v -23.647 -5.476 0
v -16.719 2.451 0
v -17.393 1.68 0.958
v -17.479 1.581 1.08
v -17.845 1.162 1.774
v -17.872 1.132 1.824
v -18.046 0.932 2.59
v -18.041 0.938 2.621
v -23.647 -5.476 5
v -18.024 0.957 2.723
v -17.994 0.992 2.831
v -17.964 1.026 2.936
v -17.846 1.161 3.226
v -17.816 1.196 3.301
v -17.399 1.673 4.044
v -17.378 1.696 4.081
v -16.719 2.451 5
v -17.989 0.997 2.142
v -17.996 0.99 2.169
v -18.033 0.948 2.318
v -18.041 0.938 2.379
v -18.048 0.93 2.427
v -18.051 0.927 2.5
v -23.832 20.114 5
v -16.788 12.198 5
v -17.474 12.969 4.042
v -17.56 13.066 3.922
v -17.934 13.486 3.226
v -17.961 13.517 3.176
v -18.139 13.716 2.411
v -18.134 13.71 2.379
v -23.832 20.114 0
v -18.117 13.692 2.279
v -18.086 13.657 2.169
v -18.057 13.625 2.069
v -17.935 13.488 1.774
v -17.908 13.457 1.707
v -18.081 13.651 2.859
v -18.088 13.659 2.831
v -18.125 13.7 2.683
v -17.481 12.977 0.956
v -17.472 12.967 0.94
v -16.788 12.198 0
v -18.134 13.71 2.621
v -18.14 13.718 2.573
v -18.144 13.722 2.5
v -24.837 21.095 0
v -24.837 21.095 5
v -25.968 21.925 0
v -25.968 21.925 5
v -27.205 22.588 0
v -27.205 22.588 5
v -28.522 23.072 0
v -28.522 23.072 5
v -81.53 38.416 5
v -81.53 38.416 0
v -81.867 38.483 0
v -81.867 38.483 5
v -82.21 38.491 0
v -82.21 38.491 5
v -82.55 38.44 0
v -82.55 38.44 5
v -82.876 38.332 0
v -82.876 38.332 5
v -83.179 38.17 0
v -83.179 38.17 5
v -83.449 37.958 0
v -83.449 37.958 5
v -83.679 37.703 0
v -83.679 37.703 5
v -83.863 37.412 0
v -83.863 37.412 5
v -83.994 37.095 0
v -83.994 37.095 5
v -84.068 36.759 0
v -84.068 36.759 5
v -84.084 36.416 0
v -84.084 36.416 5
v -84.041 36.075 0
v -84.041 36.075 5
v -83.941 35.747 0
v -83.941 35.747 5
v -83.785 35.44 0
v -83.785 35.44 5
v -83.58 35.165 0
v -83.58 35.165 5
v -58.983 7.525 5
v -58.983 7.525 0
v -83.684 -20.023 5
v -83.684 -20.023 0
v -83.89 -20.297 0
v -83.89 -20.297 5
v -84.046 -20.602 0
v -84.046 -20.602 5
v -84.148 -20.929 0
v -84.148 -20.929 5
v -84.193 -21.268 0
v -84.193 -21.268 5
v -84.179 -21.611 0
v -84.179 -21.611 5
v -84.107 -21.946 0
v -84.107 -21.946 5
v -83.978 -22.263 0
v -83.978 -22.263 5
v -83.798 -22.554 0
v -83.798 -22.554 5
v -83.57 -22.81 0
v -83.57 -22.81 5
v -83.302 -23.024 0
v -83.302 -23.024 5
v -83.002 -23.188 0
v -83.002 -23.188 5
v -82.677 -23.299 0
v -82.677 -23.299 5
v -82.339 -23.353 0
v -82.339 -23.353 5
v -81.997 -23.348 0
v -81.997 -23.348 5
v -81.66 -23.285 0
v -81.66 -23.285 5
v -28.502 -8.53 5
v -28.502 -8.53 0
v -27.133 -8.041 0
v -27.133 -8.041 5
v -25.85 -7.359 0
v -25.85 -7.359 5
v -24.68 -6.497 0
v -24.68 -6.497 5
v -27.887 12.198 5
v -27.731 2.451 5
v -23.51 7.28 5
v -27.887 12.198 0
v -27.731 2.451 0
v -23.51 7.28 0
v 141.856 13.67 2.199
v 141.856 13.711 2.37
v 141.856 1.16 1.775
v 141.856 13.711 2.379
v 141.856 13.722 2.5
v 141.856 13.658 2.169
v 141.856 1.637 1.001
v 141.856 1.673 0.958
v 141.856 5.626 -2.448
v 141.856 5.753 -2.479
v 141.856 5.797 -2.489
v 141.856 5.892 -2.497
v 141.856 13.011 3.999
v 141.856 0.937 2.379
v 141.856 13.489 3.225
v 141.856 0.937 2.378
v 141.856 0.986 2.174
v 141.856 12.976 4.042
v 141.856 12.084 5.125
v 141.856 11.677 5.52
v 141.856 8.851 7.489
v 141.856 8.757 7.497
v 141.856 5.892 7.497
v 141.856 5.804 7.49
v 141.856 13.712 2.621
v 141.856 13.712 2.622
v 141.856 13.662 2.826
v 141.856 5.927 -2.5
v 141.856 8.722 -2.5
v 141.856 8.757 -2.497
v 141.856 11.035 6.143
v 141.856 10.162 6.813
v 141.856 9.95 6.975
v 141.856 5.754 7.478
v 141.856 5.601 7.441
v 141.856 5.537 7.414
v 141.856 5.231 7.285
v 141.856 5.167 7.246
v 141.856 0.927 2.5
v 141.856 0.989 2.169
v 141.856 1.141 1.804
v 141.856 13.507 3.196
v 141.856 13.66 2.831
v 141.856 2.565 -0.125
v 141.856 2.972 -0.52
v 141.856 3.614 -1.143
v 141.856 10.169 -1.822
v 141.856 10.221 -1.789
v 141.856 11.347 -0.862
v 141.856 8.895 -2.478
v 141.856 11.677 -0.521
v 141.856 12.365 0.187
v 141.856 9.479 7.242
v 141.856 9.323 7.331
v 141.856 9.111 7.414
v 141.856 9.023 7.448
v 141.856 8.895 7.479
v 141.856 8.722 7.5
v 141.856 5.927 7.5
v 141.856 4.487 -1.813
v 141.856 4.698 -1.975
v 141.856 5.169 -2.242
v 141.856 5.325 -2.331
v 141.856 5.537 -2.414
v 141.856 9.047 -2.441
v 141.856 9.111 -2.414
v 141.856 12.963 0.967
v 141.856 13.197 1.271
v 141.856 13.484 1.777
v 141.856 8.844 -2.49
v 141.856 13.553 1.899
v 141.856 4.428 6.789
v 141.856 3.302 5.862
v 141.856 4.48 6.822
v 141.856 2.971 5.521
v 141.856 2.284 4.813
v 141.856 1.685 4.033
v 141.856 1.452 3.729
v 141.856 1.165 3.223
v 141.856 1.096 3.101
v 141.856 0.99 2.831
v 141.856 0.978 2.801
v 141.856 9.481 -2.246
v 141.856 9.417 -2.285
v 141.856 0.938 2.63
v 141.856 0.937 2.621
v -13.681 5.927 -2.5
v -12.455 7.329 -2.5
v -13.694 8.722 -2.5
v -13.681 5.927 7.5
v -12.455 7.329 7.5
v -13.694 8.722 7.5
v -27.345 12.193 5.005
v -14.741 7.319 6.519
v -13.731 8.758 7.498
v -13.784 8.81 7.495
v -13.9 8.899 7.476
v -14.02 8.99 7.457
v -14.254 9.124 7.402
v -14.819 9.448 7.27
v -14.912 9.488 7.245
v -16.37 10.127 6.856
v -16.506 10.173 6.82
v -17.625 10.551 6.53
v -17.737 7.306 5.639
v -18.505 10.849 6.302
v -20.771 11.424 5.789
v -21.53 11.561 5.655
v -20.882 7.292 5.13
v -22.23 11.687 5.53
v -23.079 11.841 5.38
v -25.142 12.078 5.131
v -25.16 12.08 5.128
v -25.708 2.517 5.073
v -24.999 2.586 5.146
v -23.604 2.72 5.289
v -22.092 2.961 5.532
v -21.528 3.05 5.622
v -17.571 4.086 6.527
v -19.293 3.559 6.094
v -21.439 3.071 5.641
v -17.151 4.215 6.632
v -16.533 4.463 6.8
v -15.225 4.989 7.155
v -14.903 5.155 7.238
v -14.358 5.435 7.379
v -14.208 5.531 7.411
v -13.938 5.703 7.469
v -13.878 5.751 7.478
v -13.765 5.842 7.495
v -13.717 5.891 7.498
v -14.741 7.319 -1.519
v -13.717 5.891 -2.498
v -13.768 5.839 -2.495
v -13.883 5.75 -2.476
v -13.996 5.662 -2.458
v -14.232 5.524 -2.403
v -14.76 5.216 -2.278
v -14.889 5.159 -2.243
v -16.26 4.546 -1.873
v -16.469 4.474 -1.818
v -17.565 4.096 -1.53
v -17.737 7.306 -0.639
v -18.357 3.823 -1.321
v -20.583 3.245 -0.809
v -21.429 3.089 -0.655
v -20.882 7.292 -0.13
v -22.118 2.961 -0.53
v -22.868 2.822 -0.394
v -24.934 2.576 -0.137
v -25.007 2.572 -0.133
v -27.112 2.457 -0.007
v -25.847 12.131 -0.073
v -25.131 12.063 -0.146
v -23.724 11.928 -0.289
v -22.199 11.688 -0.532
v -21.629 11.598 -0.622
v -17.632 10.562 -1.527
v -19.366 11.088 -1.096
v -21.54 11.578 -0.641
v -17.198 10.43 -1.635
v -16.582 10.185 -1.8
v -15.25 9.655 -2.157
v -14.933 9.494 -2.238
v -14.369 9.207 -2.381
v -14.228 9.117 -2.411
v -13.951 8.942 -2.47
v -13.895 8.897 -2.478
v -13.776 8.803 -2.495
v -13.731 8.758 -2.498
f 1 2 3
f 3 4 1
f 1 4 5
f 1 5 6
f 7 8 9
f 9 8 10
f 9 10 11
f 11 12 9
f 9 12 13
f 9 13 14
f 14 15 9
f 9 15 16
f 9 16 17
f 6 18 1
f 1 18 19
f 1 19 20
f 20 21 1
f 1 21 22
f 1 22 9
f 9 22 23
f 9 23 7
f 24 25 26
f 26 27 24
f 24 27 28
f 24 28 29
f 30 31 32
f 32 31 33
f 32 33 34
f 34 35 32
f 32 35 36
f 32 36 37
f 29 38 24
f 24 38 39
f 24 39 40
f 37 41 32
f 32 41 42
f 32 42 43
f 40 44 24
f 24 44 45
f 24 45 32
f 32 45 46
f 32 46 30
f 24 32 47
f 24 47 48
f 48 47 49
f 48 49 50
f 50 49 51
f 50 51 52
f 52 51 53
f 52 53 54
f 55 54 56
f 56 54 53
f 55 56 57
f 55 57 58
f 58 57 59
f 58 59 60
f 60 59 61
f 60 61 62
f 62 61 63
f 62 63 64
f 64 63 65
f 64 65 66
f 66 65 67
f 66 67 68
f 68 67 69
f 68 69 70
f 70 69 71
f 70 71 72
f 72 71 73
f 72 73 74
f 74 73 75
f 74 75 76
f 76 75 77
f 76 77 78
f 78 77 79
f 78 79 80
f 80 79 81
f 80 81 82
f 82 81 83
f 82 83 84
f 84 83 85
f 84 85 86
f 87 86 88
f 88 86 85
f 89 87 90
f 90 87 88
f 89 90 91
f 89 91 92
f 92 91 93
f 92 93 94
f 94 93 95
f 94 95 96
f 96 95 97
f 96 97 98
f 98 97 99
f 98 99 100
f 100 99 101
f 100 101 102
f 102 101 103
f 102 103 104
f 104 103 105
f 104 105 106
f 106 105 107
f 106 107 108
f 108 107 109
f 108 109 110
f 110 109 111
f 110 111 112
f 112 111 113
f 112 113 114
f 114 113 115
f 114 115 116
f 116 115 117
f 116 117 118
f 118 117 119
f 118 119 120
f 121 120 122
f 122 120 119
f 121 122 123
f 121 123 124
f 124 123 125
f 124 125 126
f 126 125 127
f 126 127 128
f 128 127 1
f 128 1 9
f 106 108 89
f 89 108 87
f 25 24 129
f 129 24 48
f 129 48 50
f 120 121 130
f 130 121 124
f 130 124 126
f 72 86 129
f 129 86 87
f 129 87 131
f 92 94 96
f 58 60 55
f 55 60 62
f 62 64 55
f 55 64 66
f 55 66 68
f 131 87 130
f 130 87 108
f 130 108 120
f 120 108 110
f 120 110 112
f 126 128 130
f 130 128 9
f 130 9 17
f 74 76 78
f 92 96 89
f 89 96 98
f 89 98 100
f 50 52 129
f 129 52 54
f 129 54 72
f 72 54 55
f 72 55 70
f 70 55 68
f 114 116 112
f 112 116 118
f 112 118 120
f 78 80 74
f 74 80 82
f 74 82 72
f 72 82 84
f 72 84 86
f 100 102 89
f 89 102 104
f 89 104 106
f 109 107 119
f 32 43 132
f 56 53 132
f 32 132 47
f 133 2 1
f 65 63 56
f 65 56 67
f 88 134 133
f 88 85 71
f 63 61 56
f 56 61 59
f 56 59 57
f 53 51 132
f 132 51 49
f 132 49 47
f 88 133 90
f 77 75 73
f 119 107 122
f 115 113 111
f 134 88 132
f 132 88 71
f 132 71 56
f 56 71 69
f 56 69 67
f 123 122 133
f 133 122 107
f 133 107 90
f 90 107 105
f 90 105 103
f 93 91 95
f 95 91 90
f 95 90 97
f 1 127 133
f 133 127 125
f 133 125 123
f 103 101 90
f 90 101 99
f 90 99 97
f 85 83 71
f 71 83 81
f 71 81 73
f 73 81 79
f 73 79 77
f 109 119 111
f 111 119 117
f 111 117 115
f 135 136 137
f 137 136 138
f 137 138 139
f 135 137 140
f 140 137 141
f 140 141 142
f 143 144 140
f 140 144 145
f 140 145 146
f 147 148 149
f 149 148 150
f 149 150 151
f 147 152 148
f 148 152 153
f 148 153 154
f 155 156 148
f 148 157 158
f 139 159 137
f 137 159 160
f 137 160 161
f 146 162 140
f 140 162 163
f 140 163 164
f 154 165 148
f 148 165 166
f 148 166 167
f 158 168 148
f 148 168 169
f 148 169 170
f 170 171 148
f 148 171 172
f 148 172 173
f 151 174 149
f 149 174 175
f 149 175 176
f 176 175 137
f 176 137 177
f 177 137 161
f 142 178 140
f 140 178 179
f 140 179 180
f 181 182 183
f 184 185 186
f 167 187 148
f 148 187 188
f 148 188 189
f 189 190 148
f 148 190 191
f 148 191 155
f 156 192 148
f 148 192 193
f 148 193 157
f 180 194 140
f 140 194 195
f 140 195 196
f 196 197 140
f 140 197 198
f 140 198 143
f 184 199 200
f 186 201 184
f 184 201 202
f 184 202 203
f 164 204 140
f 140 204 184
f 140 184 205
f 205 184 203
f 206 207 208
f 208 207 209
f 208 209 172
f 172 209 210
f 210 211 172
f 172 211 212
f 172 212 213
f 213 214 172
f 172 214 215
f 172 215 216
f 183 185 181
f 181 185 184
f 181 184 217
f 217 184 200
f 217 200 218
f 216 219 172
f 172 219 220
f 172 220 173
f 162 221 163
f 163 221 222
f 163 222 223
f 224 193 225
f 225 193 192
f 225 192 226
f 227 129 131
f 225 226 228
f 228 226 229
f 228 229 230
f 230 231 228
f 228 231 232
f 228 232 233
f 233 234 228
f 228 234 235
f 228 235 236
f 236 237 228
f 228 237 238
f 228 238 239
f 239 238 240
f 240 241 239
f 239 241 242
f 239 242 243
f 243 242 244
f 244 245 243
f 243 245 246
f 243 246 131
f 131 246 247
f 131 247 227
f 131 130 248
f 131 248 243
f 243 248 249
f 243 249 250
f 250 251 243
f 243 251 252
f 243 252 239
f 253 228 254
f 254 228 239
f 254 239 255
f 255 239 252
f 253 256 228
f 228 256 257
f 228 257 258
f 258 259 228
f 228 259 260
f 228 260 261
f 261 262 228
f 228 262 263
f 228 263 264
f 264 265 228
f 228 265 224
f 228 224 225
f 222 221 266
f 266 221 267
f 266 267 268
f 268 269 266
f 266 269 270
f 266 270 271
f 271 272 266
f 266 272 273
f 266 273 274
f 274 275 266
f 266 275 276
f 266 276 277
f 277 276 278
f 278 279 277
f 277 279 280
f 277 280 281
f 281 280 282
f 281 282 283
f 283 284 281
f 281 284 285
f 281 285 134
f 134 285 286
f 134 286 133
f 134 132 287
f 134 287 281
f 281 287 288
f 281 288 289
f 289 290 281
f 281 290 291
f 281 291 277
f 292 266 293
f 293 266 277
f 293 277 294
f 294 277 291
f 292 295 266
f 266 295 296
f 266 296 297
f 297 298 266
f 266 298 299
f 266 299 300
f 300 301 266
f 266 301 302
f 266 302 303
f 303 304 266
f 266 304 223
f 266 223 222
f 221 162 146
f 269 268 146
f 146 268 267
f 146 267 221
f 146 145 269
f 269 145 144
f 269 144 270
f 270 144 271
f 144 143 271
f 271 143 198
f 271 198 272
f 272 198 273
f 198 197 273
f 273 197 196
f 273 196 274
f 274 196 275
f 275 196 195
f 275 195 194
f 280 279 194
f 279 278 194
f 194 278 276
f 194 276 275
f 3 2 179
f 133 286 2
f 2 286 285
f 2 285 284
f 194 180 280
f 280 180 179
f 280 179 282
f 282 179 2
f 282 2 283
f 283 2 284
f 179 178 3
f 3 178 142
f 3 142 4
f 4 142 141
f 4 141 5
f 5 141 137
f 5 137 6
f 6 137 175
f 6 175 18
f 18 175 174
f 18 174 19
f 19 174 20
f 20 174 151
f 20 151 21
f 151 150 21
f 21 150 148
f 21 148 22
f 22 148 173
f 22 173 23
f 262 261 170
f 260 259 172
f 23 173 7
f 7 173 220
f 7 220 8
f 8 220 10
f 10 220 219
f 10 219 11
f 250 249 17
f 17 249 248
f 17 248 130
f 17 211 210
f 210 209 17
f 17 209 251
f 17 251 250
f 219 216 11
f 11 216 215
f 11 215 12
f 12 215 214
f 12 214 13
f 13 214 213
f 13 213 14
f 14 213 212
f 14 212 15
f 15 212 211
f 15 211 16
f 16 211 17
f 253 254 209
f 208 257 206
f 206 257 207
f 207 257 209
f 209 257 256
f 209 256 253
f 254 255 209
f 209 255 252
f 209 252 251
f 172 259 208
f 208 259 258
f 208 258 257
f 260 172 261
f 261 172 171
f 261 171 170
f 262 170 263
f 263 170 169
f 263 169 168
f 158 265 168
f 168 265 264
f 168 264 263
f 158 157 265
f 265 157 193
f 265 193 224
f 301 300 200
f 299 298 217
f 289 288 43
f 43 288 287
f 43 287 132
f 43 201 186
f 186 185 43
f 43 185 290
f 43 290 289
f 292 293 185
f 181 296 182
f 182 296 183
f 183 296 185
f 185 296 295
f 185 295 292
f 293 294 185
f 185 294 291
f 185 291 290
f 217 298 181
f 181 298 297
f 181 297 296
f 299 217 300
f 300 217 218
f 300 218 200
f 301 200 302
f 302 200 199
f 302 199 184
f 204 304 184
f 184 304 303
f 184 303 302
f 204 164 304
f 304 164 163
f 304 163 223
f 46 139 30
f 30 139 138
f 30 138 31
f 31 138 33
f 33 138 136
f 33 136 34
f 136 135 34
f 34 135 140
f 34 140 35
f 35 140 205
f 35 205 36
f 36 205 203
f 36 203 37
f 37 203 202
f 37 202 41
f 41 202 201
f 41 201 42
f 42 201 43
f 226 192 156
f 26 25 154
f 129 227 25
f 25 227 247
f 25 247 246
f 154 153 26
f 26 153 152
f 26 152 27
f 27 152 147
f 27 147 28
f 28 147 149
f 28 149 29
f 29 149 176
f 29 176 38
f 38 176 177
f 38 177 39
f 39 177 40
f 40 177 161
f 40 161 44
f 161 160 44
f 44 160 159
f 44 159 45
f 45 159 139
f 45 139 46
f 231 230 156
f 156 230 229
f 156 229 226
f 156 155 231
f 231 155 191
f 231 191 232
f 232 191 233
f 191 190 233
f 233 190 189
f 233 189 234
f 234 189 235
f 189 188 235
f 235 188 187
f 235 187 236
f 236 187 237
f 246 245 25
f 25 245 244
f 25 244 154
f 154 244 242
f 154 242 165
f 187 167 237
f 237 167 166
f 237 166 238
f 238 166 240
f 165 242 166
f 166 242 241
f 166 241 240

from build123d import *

# Parameters (mm, degrees)
BOSS_EXTRU_1_DEPTH = 5
BOSS_EXTRU_3_START = 7.5
BOSS_EXTRU_3_DEPTH = 10
CONG_8_R           = 15
CONG_9_SIZE        = 5


with BuildPart() as part:
    # Esquisse1 → Boss.-Extru.1 (new body)
    with BuildSketch(Plane.XY):
        with BuildLine():
            Line((-12.455060077, 7.329105625), (-23.832360657, 20.114357067))
            ThreePointArc((-23.832360657, 20.114357067), (-25.968224675, 21.924872738), (-28.522312132, 23.072269514))
            Line((-28.522312132, 23.072269514), (-81.529598126, 38.415853733))
            ThreePointArc((-81.529598126, 38.415853733), (-83.77734848, 37.561631676), (-83.579778581, 35.165166965))
            Line((-83.579778581, 35.165166965), (-58.983064004, 7.524587521))
            Line((-58.983064004, 7.524587521), (-83.683817787, -20.023057796))
            ThreePointArc((-83.683817787, -20.023057796), (-83.894250032, -22.412614831), (-81.659847534, -23.285374839))
            Line((-81.659847534, -23.285374839), (-28.501505769, -8.530440884))
            ThreePointArc((-28.501505769, -8.530440884), (-25.85033223, -7.358585076), (-23.646623539, -5.475599369))
            Line((-23.646623539, -5.475599369), (-12.455060077, 7.329105625))
        make_face()
    extrude(amount=BOSS_EXTRU_1_DEPTH)

    # Esquisse2 → Boss.-Extru.3 (add)
    with BuildSketch(Plane.XY.offset(BOSS_EXTRU_3_START)):
        Polygon((-18.143710367, 13.721731346), (141.856289633, 13.721731346), (141.856289633, 0.926753128), (-18.050841808, 0.926753128), (-12.455060077, 7.329105625), align=None)
    extrude(amount=-BOSS_EXTRU_3_DEPTH)

    # Congé8
    # the kernel refuses this fillet: 15 mm, written as the material it adds along each edge
    with BuildSketch(Plane(origin=(-31.692252861, -14.680918207, 5), x_dir=(-0.7529423951680033, 0.6580864301584334, 0), z_dir=(0.6580864301584333, 0.7529423951680033, 0))) as cong_8_piece_1_section:
        with BuildLine():
            CenterArc((8.291561976, 15), CONG_8_R, 236.442690238, 33.557309762)
            Line((0, 2.5), (0, 0))
            Line((0, 0), (8.291561976, 0))
        make_face()
    cong_8_piece_1 = extrude(amount=49.960920527, mode=Mode.PRIVATE)
    cong_8_piece_1 = split(cong_8_piece_1, bisect_by=Plane(origin=(-31.692252861, 0.926753128, 5), z_dir=(0, 1, 0)), keep=Keep.TOP, mode=Mode.PRIVATE)
    cong_8_piece_1 = split(cong_8_piece_1, bisect_by=Plane(origin=(-31.692252861, 13.721731346, 5), z_dir=(0, -1, 0)), keep=Keep.TOP, mode=Mode.PRIVATE)
    add(cong_8_piece_1)
    with BuildSketch(Plane(origin=(1.325019877, -8.156271234, 5), x_dir=(-0.7470426876655595, -0.6647760696696423, 0), z_dir=(-0.6647760696696423, 0.7470426876655596, 0))) as cong_8_piece_2_section:
        with BuildLine():
            CenterArc((8.291561976, 15), CONG_8_R, 236.442690238, 33.557309762)
            Line((0, 2.5), (0, 0))
            Line((0, 0), (8.291561976, 0))
        make_face()
    cong_8_piece_2 = extrude(amount=50.015052761, mode=Mode.PRIVATE)
    cong_8_piece_2 = split(cong_8_piece_2, bisect_by=Plane(origin=(-14.160236459, 5.378146708, 5), z_dir=(-0.752942395168003, 0.6580864301584336, 0)), keep=Keep.TOP, mode=Mode.PRIVATE)
    cong_8_piece_2 = split(cong_8_piece_2, bisect_by=Plane(origin=(1.325019877, 13.721731346, 5), z_dir=(0, -1, 0)), keep=Keep.TOP, mode=Mode.PRIVATE)
    add(cong_8_piece_2)
    with BuildSketch(Plane(origin=(1.325019877, -8.156271234, 0), x_dir=(-0.7470426876655595, -0.6647760696696423, 0), z_dir=(-0.6647760696696423, 0.7470426876655596, 0))) as cong_8_piece_3_section:
        with BuildLine():
            CenterArc((8.291561976, -15), CONG_8_R, 90, 33.557309762)
            Line((0, -2.5), (0, 0))
            Line((0, 0), (8.291561976, 0))
        make_face()
    cong_8_piece_3 = extrude(amount=50.015052761, mode=Mode.PRIVATE)
    cong_8_piece_3 = split(cong_8_piece_3, bisect_by=Plane(origin=(-14.160236459, 5.378146708, 0), z_dir=(-0.752942395168003, 0.6580864301584336, 0)), keep=Keep.TOP, mode=Mode.PRIVATE)
    cong_8_piece_3 = split(cong_8_piece_3, bisect_by=Plane(origin=(1.325019877, 13.721731346, 0), z_dir=(0, -1, 0)), keep=Keep.TOP, mode=Mode.PRIVATE)
    add(cong_8_piece_3)
    with BuildSketch(Plane(origin=(-31.692252861, -14.680918207, 0), x_dir=(-0.7529423951680033, 0.6580864301584334, 0), z_dir=(0.6580864301584333, 0.7529423951680033, 0))) as cong_8_piece_4_section:
        with BuildLine():
            CenterArc((8.291561976, -15), CONG_8_R, 90, 33.557309762)
            Line((0, -2.5), (0, 0))
            Line((0, 0), (8.291561976, 0))
        make_face()
    cong_8_piece_4 = extrude(amount=49.960920527, mode=Mode.PRIVATE)
    cong_8_piece_4 = split(cong_8_piece_4, bisect_by=Plane(origin=(-31.692252861, 0.926753128, 0), z_dir=(0, 1, 0)), keep=Keep.TOP, mode=Mode.PRIVATE)
    cong_8_piece_4 = split(cong_8_piece_4, bisect_by=Plane(origin=(-31.692252861, 13.721731346, 0), z_dir=(0, -1, 0)), keep=Keep.TOP, mode=Mode.PRIVATE)
    add(cong_8_piece_4)

    # Congé9
    # a fillet whose section is not a circle: 5 mm, written as the material it takes off along each edge
    with BuildSketch(Plane(origin=(154.356289633, 0.926753128, 7.5), x_dir=(0, 1, 0), z_dir=(-1, 0, 0))) as cong_9_piece_1_section:
        with BuildLine():
            Bezier((CONG_9_SIZE, 0), (0, 0), (0, CONG_9_SIZE), weights=[1, 0.25, 1])
            Line((0, CONG_9_SIZE), (0, 0))
            Line((0, 0), (CONG_9_SIZE, 0))
        make_face()
    cong_9_piece_1 = extrude(amount=184.907131441, mode=Mode.PRIVATE)
    cong_9_piece_1 = split(cong_9_piece_1, bisect_by=Plane(origin=(154.356289633, 0.926753128, 5), z_dir=(0, 0, 1)), keep=Keep.TOP, mode=Mode.PRIVATE)
    cong_9_piece_1 = split(cong_9_piece_1, bisect_by=Plane(origin=(56.614850684, 86.354688982, 7.5), z_dir=(0.7529423951680033, -0.6580864301584333, 0)), keep=Keep.TOP, mode=Mode.PRIVATE)
    add(cong_9_piece_1, mode=Mode.SUBTRACT)
    with BuildSketch(Plane(origin=(154.356289633, 0.926753128, 7.5), x_dir=(0, 1, 0), z_dir=(-1, 0, 0))) as cong_9_piece_2_section:
        with BuildLine():
            Bezier((CONG_9_SIZE, 0), (0, 0), (0, CONG_9_SIZE), weights=[1, 0.25, 1])
            Line((0, CONG_9_SIZE), (0, 0))
            Line((0, 0), (CONG_9_SIZE, 0))
        make_face()
    cong_9_piece_2 = extrude(amount=184.907131441, mode=Mode.PRIVATE)
    cong_9_piece_2 = split(cong_9_piece_2, bisect_by=Plane(origin=(154.356289633, 0.926753128, 5), z_dir=(0, 0, -1)), keep=Keep.TOP, mode=Mode.PRIVATE)
    cong_9_piece_2 = split(cong_9_piece_2, bisect_by=Plane(origin=(56.614850684, 86.354688982, 7.5), z_dir=(0.7529423951680033, -0.6580864301584333, 0)), keep=Keep.TOP, mode=Mode.PRIVATE)
    add(cong_9_piece_2, mode=Mode.SUBTRACT)
    with BuildSketch(Plane(origin=(154.356289633, 0.926753128, 7.5), x_dir=(0, 1, 0), z_dir=(-1, 0, 0))) as cong_9_piece_3_section:
        with BuildLine():
            Bezier((CONG_9_SIZE, 0), (0, 0), (0, CONG_9_SIZE), weights=[1, 0.25, 1])
            Line((0, CONG_9_SIZE), (0, 0))
            Line((0, 0), (CONG_9_SIZE, 0))
        make_face()
    cong_9_piece_3 = extrude(amount=184.907131441, mode=Mode.PRIVATE)
    cong_9_piece_3 = split(cong_9_piece_3, bisect_by=Plane(origin=(154.356289633, 0.926753128, 5), z_dir=(0, 0, 1)), keep=Keep.TOP, mode=Mode.PRIVATE)
    cong_9_piece_3 = split(cong_9_piece_3, bisect_by=Plane(origin=(56.614850684, 86.354688982, 7.5), z_dir=(-0.7529423951680033, 0.6580864301584333, 0)), keep=Keep.TOP, mode=Mode.PRIVATE)
    add(cong_9_piece_3, mode=Mode.SUBTRACT)
    with BuildSketch(Plane(origin=(154.356289633, 13.721731346, 7.5), x_dir=(0, -1, 0), z_dir=(-1, 0, 0))) as cong_9_piece_4_section:
        with BuildLine():
            Bezier((CONG_9_SIZE, 0), (0, 0), (0, -CONG_9_SIZE), weights=[1, 0.25, 1])
            Line((0, -CONG_9_SIZE), (0, 0))
            Line((0, 0), (CONG_9_SIZE, 0))
        make_face()
    cong_9_piece_4 = extrude(amount=185, mode=Mode.PRIVATE)
    cong_9_piece_4 = split(cong_9_piece_4, bisect_by=Plane(origin=(154.356289633, 13.721731346, 5), z_dir=(0, 0, 1)), keep=Keep.TOP, mode=Mode.PRIVATE)
    cong_9_piece_4 = split(cong_9_piece_4, bisect_by=Plane(origin=(58.088735567, -71.944546211, 7.5), z_dir=(0.7470426876655596, 0.6647760696696423, 0)), keep=Keep.TOP, mode=Mode.PRIVATE)
    add(cong_9_piece_4, mode=Mode.SUBTRACT)
    with BuildSketch(Plane(origin=(154.356289633, 13.721731346, 7.5), x_dir=(0, -1, 0), z_dir=(-1, 0, 0))) as cong_9_piece_5_section:
        with BuildLine():
            Bezier((CONG_9_SIZE, 0), (0, 0), (0, -CONG_9_SIZE), weights=[1, 0.25, 1])
            Line((0, -CONG_9_SIZE), (0, 0))
            Line((0, 0), (CONG_9_SIZE, 0))
        make_face()
    cong_9_piece_5 = extrude(amount=185, mode=Mode.PRIVATE)
    cong_9_piece_5 = split(cong_9_piece_5, bisect_by=Plane(origin=(154.356289633, 13.721731346, 5), z_dir=(0, 0, -1)), keep=Keep.TOP, mode=Mode.PRIVATE)
    cong_9_piece_5 = split(cong_9_piece_5, bisect_by=Plane(origin=(58.088735567, -71.944546211, 7.5), z_dir=(0.7470426876655596, 0.6647760696696423, 0)), keep=Keep.TOP, mode=Mode.PRIVATE)
    add(cong_9_piece_5, mode=Mode.SUBTRACT)
    with BuildSketch(Plane(origin=(154.356289633, 13.721731346, 7.5), x_dir=(0, -1, 0), z_dir=(-1, 0, 0))) as cong_9_piece_6_section:
        with BuildLine():
            Bezier((CONG_9_SIZE, 0), (0, 0), (0, -CONG_9_SIZE), weights=[1, 0.25, 1])
            Line((0, -CONG_9_SIZE), (0, 0))
            Line((0, 0), (CONG_9_SIZE, 0))
        make_face()
    cong_9_piece_6 = extrude(amount=185, mode=Mode.PRIVATE)
    cong_9_piece_6 = split(cong_9_piece_6, bisect_by=Plane(origin=(154.356289633, 13.721731346, 5), z_dir=(0, 0, 1)), keep=Keep.TOP, mode=Mode.PRIVATE)
    cong_9_piece_6 = split(cong_9_piece_6, bisect_by=Plane(origin=(58.088735567, -71.944546211, 7.5), z_dir=(-0.7470426876655596, -0.6647760696696423, 0)), keep=Keep.TOP, mode=Mode.PRIVATE)
    add(cong_9_piece_6, mode=Mode.SUBTRACT)
    with BuildSketch(Plane(origin=(-30.643710367, 13.721731346, -2.5), x_dir=(0, 0, 1), z_dir=(1, 0, 0))) as cong_9_piece_7_section:
        with BuildLine():
            Bezier((CONG_9_SIZE, 0), (0, 0), (0, CONG_9_SIZE), weights=[1, 0.25, 1])
            Line((0, CONG_9_SIZE), (0, 0))
            Line((0, 0), (CONG_9_SIZE, 0))
        make_face()
    cong_9_piece_7 = extrude(amount=185, mode=Mode.PRIVATE)
    cong_9_piece_7 = split(cong_9_piece_7, bisect_by=Plane(origin=(-30.643710367, 13.721731346, 0), z_dir=(0, 0, -1)), keep=Keep.TOP, mode=Mode.PRIVATE)
    cong_9_piece_7 = split(cong_9_piece_7, bisect_by=Plane(origin=(-23.667800652, 19.929432618, -2.5), z_dir=(-0.7470426876655596, -0.6647760696696423, 0)), keep=Keep.TOP, mode=Mode.PRIVATE)
    add(cong_9_piece_7, mode=Mode.SUBTRACT)
    with BuildSketch(Plane(origin=(-30.643710367, 13.721731346, -2.5), x_dir=(0, 0, 1), z_dir=(1, 0, 0))) as cong_9_piece_8_section:
        with BuildLine():
            Bezier((CONG_9_SIZE, 0), (0, 0), (0, CONG_9_SIZE), weights=[1, 0.25, 1])
            Line((0, CONG_9_SIZE), (0, 0))
            Line((0, 0), (CONG_9_SIZE, 0))
        make_face()
    cong_9_piece_8 = extrude(amount=185, mode=Mode.PRIVATE)
    cong_9_piece_8 = split(cong_9_piece_8, bisect_by=Plane(origin=(-30.643710367, 13.721731346, 0), z_dir=(0, 0, 1)), keep=Keep.TOP, mode=Mode.PRIVATE)
    cong_9_piece_8 = split(cong_9_piece_8, bisect_by=Plane(origin=(-23.667800652, 19.929432618, -2.5), z_dir=(0.7470426876655596, 0.6647760696696423, 0)), keep=Keep.TOP, mode=Mode.PRIVATE)
    add(cong_9_piece_8, mode=Mode.SUBTRACT)
    with BuildSketch(Plane(origin=(-30.643710367, 13.721731346, -2.5), x_dir=(0, 0, 1), z_dir=(1, 0, 0))) as cong_9_piece_9_section:
        with BuildLine():
            Bezier((CONG_9_SIZE, 0), (0, 0), (0, CONG_9_SIZE), weights=[1, 0.25, 1])
            Line((0, CONG_9_SIZE), (0, 0))
            Line((0, 0), (CONG_9_SIZE, 0))
        make_face()
    cong_9_piece_9 = extrude(amount=185, mode=Mode.PRIVATE)
    cong_9_piece_9 = split(cong_9_piece_9, bisect_by=Plane(origin=(-30.643710367, 13.721731346, 0), z_dir=(0, 0, -1)), keep=Keep.TOP, mode=Mode.PRIVATE)
    cong_9_piece_9 = split(cong_9_piece_9, bisect_by=Plane(origin=(-23.667800652, 19.929432618, -2.5), z_dir=(0.7470426876655596, 0.6647760696696423, 0)), keep=Keep.TOP, mode=Mode.PRIVATE)
    add(cong_9_piece_9, mode=Mode.SUBTRACT)
    with BuildSketch(Plane(origin=(154.356289633, 0.926753128, -2.5), x_dir=(0, 1, 0), z_dir=(-1, 0, 0))) as cong_9_piece_10_section:
        with BuildLine():
            Bezier((CONG_9_SIZE, 0), (0, 0), (0, -CONG_9_SIZE), weights=[1, 0.25, 1])
            Line((0, -CONG_9_SIZE), (0, 0))
            Line((0, 0), (CONG_9_SIZE, 0))
        make_face()
    cong_9_piece_10 = extrude(amount=184.907131441, mode=Mode.PRIVATE)
    cong_9_piece_10 = split(cong_9_piece_10, bisect_by=Plane(origin=(154.356289633, 0.926753128, 0), z_dir=(0, 0, -1)), keep=Keep.TOP, mode=Mode.PRIVATE)
    cong_9_piece_10 = split(cong_9_piece_10, bisect_by=Plane(origin=(56.614850684, 86.354688982, -2.5), z_dir=(0.7529423951680033, -0.6580864301584333, 0)), keep=Keep.TOP, mode=Mode.PRIVATE)
    add(cong_9_piece_10, mode=Mode.SUBTRACT)
    with BuildSketch(Plane(origin=(154.356289633, 0.926753128, -2.5), x_dir=(0, 1, 0), z_dir=(-1, 0, 0))) as cong_9_piece_11_section:
        with BuildLine():
            Bezier((CONG_9_SIZE, 0), (0, 0), (0, -CONG_9_SIZE), weights=[1, 0.25, 1])
            Line((0, -CONG_9_SIZE), (0, 0))
            Line((0, 0), (CONG_9_SIZE, 0))
        make_face()
    cong_9_piece_11 = extrude(amount=184.907131441, mode=Mode.PRIVATE)
    cong_9_piece_11 = split(cong_9_piece_11, bisect_by=Plane(origin=(154.356289633, 0.926753128, 0), z_dir=(0, 0, 1)), keep=Keep.TOP, mode=Mode.PRIVATE)
    cong_9_piece_11 = split(cong_9_piece_11, bisect_by=Plane(origin=(56.614850684, 86.354688982, -2.5), z_dir=(0.7529423951680033, -0.6580864301584333, 0)), keep=Keep.TOP, mode=Mode.PRIVATE)
    add(cong_9_piece_11, mode=Mode.SUBTRACT)
    with BuildSketch(Plane(origin=(154.356289633, 0.926753128, -2.5), x_dir=(0, 1, 0), z_dir=(-1, 0, 0))) as cong_9_piece_12_section:
        with BuildLine():
            Bezier((CONG_9_SIZE, 0), (0, 0), (0, -CONG_9_SIZE), weights=[1, 0.25, 1])
            Line((0, -CONG_9_SIZE), (0, 0))
            Line((0, 0), (CONG_9_SIZE, 0))
        make_face()
    cong_9_piece_12 = extrude(amount=184.907131441, mode=Mode.PRIVATE)
    cong_9_piece_12 = split(cong_9_piece_12, bisect_by=Plane(origin=(154.356289633, 0.926753128, 0), z_dir=(0, 0, -1)), keep=Keep.TOP, mode=Mode.PRIVATE)
    cong_9_piece_12 = split(cong_9_piece_12, bisect_by=Plane(origin=(56.614850684, 86.354688982, -2.5), z_dir=(-0.7529423951680033, 0.6580864301584333, 0)), keep=Keep.TOP, mode=Mode.PRIVATE)
    add(cong_9_piece_12, mode=Mode.SUBTRACT)


solid = part.part
